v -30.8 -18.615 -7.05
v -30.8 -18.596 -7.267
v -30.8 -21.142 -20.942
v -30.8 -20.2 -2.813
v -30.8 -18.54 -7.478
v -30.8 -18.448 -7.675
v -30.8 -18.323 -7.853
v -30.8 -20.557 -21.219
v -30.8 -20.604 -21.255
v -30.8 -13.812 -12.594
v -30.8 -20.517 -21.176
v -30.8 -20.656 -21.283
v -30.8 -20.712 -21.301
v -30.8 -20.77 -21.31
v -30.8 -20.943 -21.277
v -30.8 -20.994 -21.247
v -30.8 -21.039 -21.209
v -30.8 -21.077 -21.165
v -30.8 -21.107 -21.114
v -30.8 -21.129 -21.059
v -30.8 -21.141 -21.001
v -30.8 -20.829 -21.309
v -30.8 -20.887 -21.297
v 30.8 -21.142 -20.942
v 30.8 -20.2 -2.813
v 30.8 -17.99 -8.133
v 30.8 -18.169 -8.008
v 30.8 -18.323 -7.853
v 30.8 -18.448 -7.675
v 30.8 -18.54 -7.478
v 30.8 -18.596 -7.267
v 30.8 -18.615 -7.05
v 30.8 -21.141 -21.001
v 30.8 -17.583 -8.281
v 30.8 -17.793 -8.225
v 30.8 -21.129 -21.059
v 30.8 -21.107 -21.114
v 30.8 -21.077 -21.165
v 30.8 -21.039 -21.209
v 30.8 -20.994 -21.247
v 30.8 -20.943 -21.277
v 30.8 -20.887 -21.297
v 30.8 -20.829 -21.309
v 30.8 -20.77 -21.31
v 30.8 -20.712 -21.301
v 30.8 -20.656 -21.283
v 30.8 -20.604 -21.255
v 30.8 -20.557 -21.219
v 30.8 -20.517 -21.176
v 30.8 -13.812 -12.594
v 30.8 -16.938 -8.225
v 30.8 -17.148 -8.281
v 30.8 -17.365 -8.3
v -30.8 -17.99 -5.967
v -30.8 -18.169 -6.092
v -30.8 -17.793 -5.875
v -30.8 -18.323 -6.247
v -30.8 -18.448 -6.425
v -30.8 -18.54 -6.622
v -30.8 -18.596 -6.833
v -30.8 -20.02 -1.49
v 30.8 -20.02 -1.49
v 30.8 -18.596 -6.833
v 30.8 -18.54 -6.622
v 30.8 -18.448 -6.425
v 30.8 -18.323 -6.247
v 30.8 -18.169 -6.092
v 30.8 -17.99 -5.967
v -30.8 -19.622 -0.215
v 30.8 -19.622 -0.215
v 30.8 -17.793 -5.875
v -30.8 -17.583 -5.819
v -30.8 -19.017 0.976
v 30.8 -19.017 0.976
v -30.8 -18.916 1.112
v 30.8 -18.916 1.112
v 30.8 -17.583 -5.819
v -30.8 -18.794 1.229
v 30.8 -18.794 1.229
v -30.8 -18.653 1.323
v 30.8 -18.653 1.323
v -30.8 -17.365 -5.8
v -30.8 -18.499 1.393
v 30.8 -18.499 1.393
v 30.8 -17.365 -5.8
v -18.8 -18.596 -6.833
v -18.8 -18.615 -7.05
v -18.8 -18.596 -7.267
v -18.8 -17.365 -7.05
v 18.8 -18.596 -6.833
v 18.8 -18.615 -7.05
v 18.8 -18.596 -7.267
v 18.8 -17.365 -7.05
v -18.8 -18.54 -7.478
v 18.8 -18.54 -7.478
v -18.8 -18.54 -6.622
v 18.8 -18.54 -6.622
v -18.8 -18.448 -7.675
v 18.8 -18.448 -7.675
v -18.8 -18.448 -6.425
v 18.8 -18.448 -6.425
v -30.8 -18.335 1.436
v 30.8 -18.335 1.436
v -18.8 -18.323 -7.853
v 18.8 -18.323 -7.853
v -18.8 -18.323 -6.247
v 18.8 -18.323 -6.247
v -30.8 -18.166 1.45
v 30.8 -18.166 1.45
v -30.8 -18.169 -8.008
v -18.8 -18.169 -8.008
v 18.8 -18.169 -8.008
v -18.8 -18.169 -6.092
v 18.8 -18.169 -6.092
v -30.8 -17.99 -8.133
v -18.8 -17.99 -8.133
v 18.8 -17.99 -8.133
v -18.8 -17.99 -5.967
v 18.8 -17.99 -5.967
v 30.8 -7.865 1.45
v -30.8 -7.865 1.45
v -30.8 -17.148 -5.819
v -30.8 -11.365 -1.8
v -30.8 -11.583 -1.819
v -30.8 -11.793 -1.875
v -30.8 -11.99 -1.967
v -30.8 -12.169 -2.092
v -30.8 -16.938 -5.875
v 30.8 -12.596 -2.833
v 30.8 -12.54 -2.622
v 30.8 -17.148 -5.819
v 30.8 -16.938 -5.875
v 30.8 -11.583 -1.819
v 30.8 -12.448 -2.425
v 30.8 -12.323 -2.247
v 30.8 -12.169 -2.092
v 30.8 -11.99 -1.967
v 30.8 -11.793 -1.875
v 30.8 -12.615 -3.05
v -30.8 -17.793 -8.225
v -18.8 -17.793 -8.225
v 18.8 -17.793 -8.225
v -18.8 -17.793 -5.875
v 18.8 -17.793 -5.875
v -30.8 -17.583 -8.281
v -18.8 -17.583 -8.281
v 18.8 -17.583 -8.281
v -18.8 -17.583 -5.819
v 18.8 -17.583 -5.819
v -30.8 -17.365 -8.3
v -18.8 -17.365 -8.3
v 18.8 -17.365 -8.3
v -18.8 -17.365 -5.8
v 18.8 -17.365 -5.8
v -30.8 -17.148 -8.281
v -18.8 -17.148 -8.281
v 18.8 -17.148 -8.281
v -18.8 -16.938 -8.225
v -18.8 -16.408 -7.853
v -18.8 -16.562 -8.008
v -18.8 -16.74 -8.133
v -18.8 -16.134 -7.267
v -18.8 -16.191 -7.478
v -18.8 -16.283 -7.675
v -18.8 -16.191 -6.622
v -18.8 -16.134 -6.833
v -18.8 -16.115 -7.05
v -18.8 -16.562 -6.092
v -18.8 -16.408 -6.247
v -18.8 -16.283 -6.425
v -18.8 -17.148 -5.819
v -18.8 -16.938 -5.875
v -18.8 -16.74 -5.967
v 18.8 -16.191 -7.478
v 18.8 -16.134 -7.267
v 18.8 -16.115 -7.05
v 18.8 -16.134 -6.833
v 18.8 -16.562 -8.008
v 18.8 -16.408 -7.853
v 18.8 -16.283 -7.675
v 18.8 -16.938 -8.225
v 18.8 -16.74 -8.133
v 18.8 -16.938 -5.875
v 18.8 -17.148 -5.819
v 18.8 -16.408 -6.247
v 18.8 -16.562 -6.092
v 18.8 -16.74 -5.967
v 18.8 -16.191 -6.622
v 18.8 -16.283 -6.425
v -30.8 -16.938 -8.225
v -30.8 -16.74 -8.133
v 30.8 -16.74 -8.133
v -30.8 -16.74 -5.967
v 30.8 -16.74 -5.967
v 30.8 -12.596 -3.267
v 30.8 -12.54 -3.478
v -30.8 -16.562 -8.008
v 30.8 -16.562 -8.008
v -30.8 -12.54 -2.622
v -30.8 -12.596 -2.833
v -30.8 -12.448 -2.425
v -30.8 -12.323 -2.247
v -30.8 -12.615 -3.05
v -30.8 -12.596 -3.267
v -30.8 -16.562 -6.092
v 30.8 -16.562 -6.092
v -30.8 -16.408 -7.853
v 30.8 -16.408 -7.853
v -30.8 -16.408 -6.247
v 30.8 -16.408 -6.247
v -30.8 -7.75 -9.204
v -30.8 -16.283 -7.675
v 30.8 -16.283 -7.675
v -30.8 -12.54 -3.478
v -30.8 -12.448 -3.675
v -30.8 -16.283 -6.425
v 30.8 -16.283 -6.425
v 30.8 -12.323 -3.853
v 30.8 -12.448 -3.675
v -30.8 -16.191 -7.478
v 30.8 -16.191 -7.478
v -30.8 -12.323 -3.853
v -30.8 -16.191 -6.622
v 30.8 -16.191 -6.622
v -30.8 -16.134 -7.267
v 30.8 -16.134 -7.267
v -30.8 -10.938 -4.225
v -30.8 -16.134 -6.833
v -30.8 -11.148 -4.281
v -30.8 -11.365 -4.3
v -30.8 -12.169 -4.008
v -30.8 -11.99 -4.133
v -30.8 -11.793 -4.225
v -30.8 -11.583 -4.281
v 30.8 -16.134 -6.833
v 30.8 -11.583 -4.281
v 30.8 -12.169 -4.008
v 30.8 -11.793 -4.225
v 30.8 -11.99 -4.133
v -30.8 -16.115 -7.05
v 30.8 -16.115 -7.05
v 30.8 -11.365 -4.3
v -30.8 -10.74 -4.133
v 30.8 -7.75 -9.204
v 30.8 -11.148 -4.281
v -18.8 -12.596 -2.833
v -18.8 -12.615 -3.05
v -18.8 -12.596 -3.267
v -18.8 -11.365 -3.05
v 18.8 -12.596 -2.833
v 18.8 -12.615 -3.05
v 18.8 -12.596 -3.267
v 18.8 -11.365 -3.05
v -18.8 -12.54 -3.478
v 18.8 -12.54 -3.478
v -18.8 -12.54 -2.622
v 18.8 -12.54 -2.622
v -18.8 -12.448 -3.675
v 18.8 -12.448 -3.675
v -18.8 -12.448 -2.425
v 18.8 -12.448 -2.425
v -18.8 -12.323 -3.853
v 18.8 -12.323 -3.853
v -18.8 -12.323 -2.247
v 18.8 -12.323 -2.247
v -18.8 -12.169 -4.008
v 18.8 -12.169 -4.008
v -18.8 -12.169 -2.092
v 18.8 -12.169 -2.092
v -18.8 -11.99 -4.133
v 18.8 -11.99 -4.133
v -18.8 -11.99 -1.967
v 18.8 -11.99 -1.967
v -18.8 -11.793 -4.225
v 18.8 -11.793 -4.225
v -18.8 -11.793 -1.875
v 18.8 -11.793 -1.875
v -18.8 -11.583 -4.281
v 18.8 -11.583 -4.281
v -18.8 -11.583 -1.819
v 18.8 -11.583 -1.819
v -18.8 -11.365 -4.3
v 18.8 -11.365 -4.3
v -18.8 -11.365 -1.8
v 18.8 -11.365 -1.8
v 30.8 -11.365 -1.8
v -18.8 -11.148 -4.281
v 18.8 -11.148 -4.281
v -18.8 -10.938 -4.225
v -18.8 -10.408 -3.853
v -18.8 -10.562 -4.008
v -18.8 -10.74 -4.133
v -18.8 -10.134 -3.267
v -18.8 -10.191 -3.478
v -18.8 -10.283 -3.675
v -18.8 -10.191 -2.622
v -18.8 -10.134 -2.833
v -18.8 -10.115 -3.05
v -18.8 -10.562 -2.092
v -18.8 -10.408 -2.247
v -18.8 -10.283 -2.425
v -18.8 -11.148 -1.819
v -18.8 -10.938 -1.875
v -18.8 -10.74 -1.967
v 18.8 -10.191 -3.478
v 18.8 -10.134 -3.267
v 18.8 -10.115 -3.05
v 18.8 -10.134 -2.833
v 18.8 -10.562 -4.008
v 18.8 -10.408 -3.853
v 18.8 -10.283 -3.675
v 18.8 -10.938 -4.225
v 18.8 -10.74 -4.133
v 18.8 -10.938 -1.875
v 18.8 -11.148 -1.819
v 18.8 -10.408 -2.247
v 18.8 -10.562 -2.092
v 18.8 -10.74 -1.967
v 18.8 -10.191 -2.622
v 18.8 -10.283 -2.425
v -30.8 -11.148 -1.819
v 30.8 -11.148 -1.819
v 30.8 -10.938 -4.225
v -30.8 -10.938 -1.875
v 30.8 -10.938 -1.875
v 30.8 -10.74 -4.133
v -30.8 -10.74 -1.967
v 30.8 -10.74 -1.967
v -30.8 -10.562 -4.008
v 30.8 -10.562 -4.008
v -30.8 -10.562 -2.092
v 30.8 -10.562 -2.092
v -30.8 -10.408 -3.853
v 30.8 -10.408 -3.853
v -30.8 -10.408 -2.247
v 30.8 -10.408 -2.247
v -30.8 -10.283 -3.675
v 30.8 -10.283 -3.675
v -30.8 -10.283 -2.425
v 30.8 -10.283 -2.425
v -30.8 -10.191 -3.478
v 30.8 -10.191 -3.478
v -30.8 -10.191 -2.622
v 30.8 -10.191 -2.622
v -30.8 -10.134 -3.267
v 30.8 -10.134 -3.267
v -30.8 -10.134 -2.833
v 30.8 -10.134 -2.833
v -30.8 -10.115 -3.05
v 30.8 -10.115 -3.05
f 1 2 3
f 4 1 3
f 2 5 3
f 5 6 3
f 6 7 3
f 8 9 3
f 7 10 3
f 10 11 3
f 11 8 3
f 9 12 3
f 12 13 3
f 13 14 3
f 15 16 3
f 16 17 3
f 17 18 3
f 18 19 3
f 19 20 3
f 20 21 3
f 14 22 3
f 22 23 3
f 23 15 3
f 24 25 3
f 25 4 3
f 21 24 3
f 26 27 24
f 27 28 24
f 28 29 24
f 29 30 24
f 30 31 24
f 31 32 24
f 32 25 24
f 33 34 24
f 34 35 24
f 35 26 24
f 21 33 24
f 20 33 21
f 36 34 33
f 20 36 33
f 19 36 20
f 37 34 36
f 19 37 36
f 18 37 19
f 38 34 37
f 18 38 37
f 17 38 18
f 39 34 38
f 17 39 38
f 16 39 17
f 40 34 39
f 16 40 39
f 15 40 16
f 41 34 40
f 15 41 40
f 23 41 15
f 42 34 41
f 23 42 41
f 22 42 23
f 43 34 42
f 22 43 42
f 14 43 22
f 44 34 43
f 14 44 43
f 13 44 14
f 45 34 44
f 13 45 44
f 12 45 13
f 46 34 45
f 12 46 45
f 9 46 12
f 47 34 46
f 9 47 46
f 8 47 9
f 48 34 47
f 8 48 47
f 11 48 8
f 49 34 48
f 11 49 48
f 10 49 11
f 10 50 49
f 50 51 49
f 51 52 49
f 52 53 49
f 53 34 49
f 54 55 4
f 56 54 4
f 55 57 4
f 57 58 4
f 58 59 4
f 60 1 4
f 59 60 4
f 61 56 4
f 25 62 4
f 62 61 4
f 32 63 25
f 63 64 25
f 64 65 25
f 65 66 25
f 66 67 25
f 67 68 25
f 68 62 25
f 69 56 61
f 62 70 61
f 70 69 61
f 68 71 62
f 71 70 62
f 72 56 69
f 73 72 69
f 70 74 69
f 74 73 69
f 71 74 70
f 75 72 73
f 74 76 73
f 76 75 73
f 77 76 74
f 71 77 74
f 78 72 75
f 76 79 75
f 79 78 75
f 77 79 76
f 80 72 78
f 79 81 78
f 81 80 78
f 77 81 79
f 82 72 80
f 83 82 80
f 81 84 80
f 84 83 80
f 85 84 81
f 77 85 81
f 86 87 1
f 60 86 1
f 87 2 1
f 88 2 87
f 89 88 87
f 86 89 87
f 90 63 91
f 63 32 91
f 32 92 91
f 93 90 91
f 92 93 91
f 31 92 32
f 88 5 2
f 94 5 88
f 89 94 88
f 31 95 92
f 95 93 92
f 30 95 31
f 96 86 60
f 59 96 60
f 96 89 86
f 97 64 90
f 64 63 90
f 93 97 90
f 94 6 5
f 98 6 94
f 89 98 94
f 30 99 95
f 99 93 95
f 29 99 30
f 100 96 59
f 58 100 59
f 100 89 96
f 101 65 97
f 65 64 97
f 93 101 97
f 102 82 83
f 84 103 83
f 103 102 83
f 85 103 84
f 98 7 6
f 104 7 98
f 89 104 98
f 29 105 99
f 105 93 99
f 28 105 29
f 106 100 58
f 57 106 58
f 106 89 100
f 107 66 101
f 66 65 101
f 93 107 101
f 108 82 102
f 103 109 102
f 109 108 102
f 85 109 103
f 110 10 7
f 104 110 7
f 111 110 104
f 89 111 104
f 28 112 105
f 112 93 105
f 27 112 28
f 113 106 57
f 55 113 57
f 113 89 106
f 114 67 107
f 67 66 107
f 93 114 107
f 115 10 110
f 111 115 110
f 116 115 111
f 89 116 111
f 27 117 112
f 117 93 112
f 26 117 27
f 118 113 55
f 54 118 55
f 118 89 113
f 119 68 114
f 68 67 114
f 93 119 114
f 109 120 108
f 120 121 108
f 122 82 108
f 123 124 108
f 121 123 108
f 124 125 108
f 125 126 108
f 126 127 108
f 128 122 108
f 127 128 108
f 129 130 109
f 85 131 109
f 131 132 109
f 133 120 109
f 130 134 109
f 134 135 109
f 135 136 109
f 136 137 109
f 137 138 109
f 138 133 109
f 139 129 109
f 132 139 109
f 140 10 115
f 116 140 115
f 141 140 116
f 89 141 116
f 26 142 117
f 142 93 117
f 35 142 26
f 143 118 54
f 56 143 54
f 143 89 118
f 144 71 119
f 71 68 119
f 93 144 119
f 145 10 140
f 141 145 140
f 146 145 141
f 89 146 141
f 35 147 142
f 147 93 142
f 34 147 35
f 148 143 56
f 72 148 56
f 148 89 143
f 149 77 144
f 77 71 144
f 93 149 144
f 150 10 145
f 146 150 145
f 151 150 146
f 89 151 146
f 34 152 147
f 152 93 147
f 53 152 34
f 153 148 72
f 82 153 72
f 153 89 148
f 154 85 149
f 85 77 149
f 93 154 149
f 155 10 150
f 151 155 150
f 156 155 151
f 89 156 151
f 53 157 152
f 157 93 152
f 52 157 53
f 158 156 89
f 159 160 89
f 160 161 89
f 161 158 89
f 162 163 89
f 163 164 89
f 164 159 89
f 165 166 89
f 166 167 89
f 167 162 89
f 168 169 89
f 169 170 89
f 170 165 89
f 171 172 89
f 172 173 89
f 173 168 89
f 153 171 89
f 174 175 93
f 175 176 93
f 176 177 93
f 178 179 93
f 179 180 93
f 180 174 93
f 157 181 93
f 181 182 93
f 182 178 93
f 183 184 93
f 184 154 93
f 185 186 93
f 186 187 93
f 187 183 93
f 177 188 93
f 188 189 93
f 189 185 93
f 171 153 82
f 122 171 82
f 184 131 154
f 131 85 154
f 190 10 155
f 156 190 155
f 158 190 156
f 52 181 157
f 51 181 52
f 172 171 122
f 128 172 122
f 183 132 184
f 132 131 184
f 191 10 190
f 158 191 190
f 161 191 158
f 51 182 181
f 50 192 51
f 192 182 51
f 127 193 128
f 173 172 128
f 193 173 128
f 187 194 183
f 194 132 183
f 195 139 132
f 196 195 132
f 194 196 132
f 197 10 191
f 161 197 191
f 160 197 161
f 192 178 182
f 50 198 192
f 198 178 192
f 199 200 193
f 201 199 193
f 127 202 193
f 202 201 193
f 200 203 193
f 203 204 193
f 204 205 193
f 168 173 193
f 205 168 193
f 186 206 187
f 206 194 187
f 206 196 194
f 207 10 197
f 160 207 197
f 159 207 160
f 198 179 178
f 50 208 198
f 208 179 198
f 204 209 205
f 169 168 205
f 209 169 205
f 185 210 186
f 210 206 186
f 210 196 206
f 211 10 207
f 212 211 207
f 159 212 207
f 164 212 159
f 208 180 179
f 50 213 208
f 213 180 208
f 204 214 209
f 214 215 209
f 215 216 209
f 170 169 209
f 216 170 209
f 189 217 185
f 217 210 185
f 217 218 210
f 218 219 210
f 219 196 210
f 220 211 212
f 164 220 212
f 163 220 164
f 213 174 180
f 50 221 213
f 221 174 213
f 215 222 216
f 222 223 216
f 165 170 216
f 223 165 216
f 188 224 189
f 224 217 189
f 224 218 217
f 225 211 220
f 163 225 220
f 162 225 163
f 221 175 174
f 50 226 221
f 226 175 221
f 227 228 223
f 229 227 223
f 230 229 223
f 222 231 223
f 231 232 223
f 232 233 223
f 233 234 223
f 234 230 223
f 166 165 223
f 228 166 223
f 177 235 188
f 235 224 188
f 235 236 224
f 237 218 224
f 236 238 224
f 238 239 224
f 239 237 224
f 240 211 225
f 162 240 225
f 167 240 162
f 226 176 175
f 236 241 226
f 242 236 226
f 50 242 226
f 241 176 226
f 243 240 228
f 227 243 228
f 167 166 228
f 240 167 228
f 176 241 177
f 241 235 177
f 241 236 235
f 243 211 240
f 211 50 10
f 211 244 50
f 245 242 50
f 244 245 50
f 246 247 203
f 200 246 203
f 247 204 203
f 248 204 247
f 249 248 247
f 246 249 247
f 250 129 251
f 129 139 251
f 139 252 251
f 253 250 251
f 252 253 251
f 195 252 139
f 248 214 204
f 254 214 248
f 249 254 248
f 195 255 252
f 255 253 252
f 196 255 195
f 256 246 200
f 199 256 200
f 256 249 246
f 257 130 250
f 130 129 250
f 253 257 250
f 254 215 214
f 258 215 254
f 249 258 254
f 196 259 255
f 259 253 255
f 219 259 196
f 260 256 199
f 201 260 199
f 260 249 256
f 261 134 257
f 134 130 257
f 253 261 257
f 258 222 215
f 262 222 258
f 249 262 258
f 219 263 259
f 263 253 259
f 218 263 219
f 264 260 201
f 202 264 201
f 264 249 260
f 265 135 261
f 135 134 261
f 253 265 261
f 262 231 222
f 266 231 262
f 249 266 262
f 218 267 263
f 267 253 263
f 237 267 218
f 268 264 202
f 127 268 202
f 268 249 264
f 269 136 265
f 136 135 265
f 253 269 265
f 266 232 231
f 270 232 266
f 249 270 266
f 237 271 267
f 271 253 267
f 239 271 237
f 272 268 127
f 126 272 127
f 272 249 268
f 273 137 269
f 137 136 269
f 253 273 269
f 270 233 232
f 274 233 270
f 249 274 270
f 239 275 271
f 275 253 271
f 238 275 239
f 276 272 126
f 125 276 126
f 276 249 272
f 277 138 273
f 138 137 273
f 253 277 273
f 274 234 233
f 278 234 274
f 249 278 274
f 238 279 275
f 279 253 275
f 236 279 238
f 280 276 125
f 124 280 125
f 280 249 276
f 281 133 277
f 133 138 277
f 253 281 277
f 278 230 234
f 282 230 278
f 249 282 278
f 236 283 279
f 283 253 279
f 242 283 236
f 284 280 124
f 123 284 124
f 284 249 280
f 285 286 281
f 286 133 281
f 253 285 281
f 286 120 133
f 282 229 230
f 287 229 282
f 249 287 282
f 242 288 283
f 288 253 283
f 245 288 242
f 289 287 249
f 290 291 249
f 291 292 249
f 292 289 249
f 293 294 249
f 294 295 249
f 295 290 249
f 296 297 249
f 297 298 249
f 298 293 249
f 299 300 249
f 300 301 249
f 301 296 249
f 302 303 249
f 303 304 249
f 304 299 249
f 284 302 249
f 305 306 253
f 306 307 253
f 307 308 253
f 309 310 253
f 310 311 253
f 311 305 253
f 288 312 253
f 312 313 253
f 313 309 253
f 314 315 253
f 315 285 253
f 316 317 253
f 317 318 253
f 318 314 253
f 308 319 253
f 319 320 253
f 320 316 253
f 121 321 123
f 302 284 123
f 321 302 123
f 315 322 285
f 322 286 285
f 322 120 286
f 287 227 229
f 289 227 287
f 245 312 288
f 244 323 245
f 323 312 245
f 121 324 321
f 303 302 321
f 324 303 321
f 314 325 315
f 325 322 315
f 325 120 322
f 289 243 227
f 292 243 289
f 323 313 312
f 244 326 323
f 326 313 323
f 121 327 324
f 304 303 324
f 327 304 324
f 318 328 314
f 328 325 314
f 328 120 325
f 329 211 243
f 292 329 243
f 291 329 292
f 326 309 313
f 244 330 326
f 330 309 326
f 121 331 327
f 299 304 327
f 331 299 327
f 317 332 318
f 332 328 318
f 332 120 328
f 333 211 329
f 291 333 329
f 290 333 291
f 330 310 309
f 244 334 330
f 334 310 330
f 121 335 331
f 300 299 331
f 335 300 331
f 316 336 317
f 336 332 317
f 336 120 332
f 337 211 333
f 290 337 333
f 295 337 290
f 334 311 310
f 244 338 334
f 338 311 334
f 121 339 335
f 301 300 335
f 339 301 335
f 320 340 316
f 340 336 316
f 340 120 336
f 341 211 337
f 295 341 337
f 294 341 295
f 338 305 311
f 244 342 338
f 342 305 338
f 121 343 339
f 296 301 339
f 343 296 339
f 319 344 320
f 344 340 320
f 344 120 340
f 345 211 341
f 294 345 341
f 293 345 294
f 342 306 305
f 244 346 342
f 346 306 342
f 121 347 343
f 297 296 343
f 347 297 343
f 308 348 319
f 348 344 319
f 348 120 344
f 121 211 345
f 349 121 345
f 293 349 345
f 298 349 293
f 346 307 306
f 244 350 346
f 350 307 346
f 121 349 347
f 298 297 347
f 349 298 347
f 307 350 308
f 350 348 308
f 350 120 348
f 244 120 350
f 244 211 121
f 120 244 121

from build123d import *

# Parameters (mm, degrees)
SKETCH1_R               = 2.15
BOSS_EXTRUDE1_DEPTH     = 31.3
CUT_EXTRUDE1_REACH      = 48.052
SKETCH2_W               = 57.6
SKETCH2_H               = 12
CUT_EXTRUDE3_DEPTH      = 70.673542324
CUT_EXTRUDE4_DEPTH      = 41.650746822
CUT_EXTRUDE4_DEPTH_BACK = 41.650746822
SKETCH9_W               = 62.6
SKETCH9_H               = 53.637858301
SKETCH9_W_2             = 61.6
SKETCH9_H_2             = 51.637858301
SKETCH10_R              = 1.25
CUT_EXTRUDE5_DEPTH      = 12
CUT_EXTRUDE6_START      = -12
SKETCH11_R              = 1.25
CUT_EXTRUDE6_DEPTH      = 12
CORTE_EXTRUS_O1_DEPTH   = 69.776467632
FILETE1_R               = 1
FILETE2_R               = 0.35


with BuildPart() as part:
    # Sketch1 → Boss-Extrude1 (new, symmetric)
    with BuildSketch(Plane(origin=(0, 0, 0), x_dir=(0, 0, -1), z_dir=(1, 0, 0))):
        with BuildLine():
            Line((-4.25, 0), (-4.25, -4))
            ThreePointArc((-4.25, -4), (-4.121120876, -4.608298893), (-3.756629943, -5.112068414))
            Line((-3.756629943, -5.112068414), (-1.943370057, -6.753407807))
            ThreePointArc((-1.943370057, -6.753407807), (-1.578879124, -7.257177328), (-1.45, -7.865476221))
            Line((-1.45, -7.865476221), (-1.45, -21.2))
            Line((-1.45, -21.2), (22.05, -21.2))
            Line((22.05, -21.2), (12.593870957, -13.812062296))
            Line((12.593870957, -13.812062296), (3.709335443, 2.074447052))
            ThreePointArc((3.709335443, 2.074447052), (-1.071873212, 4.112613259), (-4.25, 0))
        make_face()
        Circle(SKETCH1_R, mode=Mode.SUBTRACT)
    extrude(amount=BOSS_EXTRUDE1_DEPTH, both=True)

    # Cut-Extrude1: up to this plane
    cut_extrude1_end = Plane(origin=(31.3, -13.812062296, -12.593870957), z_dir=(0, -0.4881051886126717, 0.8727848101619254))
    # Sketch2 → Cut-Extrude1 (cut, up to the surface)
    with BuildSketch(Plane.XY.offset(4.25), mode=Mode.PRIVATE) as cut_extrude1_sk1:
        with Locations((0, -1.75)):
            Rectangle(SKETCH2_W, SKETCH2_H)
    cut_extrude1_tool1 = split(extrude(cut_extrude1_sk1.sketch, amount=-CUT_EXTRUDE1_REACH, mode=Mode.PRIVATE), bisect_by=cut_extrude1_end, keep=Keep.BOTH, mode=Mode.PRIVATE)
    add(cut_extrude1_tool1.solids().sort_by_distance((0, -1.75, 4.25))[0], mode=Mode.SUBTRACT)

    # Sketch8 → Cut-Extrude3 (cut, through all)
    with BuildSketch(Plane(origin=(31.3, 0, 0), x_dir=(0, 0, -1), z_dir=(1, 0, 0))):
        with BuildLine():
            Line((-1.45, -7.865476221), (9.203660648, -7.75))
            Line((9.203660648, -7.75), (3.709335443, 2.074447052))
            ThreePointArc((3.709335443, 2.074447052), (-1.071873212, 4.112613259), (-4.25, 0))
            Line((-4.25, 0), (-4.25, -4))
            ThreePointArc((-4.25, -4), (-4.121120876, -4.608298893), (-3.756629943, -5.112068414))
            Line((-3.756629943, -5.112068414), (-1.943370057, -6.753407807))
            ThreePointArc((-1.943370057, -6.753407807), (-1.578879124, -7.257177328), (-1.45, -7.865476221))
        make_face()
    extrude(amount=-CUT_EXTRUDE3_DEPTH, mode=Mode.SUBTRACT)

    # Sketch9 → Cut-Extrude4 (cut, two sides: drawn at the far end of the back side and taken through both)
    with BuildSketch(Plane(origin=(0, -7.851819352, 0.190038007), x_dir=(1, 0, 0), z_dir=(0, 0.9999412620012955, 0.010838475319740372)).offset(-CUT_EXTRUDE4_DEPTH_BACK)):
        with Locations((0, 0.275128594)):
            Rectangle(SKETCH9_W, SKETCH9_H)
        with Locations((0, 0.275128594)):
            Rectangle(SKETCH9_W_2, SKETCH9_H_2, mode=Mode.SUBTRACT)
    extrude(amount=CUT_EXTRUDE4_DEPTH + CUT_EXTRUDE4_DEPTH_BACK, mode=Mode.SUBTRACT)

    # Sketch10 → Cut-Extrude5 (cut)
    with BuildSketch(Plane(origin=(30.8, 0, 0), x_dir=(0, 0, -1), z_dir=(1, 0, 0))):
        with Locations(Location((3.05, -11.365476221, 0), (0, 0, 90))):
            Circle(SKETCH10_R)
        with Locations(Location((7.05, -17.365476221, 0), (0, 0, 90))):
            Circle(SKETCH10_R)
    extrude(amount=-CUT_EXTRUDE5_DEPTH, mode=Mode.SUBTRACT)

    # Sketch11 → Cut-Extrude6 (cut)
    with BuildSketch(Plane.ZY.offset(30.8).offset(CUT_EXTRUDE6_START)):
        with Locations(Location((-7.05, -17.365476221, 0), (0, 0, 90))):
            Circle(SKETCH11_R)
        with Locations(Location((-3.05, -11.365476221, 0), (0, 0, 90))):
            Circle(SKETCH11_R)
    extrude(amount=CUT_EXTRUDE6_DEPTH, mode=Mode.SUBTRACT)

    # Esboço1 → Corte-extrusão1 (cut, through all)
    with BuildSketch(Plane(origin=(30.8, 0, 0), x_dir=(0, 0, -1), z_dir=(1, 0, 0))):
        with BuildLine():
            Line((-1.45, -21.2), (22.05, -21.2))
            Line((22.05, -21.2), (2.813375457, -20.2))
            ThreePointArc((2.813375457, -20.2), (0.573558931, -19.757329107), (-1.45, -18.7))
            Line((-1.45, -18.7), (-1.45, -21.2))
        make_face()
    extrude(amount=-CORTE_EXTRUS_O1_DEPTH, mode=Mode.SUBTRACT)

    # Filete1
    filete1_edges = [part.edges().sort_by_distance(p)[0] for p in [
        (0, -18.7, 1.45),
    ]]
    fillet(filete1_edges, radius=FILETE1_R)

    # Filete2
    filete2_edges = [part.edges().sort_by_distance(p)[0] for p in [
        (0, -21.2, -22.05),
    ]]
    fillet(filete2_edges, radius=FILETE2_R)


solid = part.part
